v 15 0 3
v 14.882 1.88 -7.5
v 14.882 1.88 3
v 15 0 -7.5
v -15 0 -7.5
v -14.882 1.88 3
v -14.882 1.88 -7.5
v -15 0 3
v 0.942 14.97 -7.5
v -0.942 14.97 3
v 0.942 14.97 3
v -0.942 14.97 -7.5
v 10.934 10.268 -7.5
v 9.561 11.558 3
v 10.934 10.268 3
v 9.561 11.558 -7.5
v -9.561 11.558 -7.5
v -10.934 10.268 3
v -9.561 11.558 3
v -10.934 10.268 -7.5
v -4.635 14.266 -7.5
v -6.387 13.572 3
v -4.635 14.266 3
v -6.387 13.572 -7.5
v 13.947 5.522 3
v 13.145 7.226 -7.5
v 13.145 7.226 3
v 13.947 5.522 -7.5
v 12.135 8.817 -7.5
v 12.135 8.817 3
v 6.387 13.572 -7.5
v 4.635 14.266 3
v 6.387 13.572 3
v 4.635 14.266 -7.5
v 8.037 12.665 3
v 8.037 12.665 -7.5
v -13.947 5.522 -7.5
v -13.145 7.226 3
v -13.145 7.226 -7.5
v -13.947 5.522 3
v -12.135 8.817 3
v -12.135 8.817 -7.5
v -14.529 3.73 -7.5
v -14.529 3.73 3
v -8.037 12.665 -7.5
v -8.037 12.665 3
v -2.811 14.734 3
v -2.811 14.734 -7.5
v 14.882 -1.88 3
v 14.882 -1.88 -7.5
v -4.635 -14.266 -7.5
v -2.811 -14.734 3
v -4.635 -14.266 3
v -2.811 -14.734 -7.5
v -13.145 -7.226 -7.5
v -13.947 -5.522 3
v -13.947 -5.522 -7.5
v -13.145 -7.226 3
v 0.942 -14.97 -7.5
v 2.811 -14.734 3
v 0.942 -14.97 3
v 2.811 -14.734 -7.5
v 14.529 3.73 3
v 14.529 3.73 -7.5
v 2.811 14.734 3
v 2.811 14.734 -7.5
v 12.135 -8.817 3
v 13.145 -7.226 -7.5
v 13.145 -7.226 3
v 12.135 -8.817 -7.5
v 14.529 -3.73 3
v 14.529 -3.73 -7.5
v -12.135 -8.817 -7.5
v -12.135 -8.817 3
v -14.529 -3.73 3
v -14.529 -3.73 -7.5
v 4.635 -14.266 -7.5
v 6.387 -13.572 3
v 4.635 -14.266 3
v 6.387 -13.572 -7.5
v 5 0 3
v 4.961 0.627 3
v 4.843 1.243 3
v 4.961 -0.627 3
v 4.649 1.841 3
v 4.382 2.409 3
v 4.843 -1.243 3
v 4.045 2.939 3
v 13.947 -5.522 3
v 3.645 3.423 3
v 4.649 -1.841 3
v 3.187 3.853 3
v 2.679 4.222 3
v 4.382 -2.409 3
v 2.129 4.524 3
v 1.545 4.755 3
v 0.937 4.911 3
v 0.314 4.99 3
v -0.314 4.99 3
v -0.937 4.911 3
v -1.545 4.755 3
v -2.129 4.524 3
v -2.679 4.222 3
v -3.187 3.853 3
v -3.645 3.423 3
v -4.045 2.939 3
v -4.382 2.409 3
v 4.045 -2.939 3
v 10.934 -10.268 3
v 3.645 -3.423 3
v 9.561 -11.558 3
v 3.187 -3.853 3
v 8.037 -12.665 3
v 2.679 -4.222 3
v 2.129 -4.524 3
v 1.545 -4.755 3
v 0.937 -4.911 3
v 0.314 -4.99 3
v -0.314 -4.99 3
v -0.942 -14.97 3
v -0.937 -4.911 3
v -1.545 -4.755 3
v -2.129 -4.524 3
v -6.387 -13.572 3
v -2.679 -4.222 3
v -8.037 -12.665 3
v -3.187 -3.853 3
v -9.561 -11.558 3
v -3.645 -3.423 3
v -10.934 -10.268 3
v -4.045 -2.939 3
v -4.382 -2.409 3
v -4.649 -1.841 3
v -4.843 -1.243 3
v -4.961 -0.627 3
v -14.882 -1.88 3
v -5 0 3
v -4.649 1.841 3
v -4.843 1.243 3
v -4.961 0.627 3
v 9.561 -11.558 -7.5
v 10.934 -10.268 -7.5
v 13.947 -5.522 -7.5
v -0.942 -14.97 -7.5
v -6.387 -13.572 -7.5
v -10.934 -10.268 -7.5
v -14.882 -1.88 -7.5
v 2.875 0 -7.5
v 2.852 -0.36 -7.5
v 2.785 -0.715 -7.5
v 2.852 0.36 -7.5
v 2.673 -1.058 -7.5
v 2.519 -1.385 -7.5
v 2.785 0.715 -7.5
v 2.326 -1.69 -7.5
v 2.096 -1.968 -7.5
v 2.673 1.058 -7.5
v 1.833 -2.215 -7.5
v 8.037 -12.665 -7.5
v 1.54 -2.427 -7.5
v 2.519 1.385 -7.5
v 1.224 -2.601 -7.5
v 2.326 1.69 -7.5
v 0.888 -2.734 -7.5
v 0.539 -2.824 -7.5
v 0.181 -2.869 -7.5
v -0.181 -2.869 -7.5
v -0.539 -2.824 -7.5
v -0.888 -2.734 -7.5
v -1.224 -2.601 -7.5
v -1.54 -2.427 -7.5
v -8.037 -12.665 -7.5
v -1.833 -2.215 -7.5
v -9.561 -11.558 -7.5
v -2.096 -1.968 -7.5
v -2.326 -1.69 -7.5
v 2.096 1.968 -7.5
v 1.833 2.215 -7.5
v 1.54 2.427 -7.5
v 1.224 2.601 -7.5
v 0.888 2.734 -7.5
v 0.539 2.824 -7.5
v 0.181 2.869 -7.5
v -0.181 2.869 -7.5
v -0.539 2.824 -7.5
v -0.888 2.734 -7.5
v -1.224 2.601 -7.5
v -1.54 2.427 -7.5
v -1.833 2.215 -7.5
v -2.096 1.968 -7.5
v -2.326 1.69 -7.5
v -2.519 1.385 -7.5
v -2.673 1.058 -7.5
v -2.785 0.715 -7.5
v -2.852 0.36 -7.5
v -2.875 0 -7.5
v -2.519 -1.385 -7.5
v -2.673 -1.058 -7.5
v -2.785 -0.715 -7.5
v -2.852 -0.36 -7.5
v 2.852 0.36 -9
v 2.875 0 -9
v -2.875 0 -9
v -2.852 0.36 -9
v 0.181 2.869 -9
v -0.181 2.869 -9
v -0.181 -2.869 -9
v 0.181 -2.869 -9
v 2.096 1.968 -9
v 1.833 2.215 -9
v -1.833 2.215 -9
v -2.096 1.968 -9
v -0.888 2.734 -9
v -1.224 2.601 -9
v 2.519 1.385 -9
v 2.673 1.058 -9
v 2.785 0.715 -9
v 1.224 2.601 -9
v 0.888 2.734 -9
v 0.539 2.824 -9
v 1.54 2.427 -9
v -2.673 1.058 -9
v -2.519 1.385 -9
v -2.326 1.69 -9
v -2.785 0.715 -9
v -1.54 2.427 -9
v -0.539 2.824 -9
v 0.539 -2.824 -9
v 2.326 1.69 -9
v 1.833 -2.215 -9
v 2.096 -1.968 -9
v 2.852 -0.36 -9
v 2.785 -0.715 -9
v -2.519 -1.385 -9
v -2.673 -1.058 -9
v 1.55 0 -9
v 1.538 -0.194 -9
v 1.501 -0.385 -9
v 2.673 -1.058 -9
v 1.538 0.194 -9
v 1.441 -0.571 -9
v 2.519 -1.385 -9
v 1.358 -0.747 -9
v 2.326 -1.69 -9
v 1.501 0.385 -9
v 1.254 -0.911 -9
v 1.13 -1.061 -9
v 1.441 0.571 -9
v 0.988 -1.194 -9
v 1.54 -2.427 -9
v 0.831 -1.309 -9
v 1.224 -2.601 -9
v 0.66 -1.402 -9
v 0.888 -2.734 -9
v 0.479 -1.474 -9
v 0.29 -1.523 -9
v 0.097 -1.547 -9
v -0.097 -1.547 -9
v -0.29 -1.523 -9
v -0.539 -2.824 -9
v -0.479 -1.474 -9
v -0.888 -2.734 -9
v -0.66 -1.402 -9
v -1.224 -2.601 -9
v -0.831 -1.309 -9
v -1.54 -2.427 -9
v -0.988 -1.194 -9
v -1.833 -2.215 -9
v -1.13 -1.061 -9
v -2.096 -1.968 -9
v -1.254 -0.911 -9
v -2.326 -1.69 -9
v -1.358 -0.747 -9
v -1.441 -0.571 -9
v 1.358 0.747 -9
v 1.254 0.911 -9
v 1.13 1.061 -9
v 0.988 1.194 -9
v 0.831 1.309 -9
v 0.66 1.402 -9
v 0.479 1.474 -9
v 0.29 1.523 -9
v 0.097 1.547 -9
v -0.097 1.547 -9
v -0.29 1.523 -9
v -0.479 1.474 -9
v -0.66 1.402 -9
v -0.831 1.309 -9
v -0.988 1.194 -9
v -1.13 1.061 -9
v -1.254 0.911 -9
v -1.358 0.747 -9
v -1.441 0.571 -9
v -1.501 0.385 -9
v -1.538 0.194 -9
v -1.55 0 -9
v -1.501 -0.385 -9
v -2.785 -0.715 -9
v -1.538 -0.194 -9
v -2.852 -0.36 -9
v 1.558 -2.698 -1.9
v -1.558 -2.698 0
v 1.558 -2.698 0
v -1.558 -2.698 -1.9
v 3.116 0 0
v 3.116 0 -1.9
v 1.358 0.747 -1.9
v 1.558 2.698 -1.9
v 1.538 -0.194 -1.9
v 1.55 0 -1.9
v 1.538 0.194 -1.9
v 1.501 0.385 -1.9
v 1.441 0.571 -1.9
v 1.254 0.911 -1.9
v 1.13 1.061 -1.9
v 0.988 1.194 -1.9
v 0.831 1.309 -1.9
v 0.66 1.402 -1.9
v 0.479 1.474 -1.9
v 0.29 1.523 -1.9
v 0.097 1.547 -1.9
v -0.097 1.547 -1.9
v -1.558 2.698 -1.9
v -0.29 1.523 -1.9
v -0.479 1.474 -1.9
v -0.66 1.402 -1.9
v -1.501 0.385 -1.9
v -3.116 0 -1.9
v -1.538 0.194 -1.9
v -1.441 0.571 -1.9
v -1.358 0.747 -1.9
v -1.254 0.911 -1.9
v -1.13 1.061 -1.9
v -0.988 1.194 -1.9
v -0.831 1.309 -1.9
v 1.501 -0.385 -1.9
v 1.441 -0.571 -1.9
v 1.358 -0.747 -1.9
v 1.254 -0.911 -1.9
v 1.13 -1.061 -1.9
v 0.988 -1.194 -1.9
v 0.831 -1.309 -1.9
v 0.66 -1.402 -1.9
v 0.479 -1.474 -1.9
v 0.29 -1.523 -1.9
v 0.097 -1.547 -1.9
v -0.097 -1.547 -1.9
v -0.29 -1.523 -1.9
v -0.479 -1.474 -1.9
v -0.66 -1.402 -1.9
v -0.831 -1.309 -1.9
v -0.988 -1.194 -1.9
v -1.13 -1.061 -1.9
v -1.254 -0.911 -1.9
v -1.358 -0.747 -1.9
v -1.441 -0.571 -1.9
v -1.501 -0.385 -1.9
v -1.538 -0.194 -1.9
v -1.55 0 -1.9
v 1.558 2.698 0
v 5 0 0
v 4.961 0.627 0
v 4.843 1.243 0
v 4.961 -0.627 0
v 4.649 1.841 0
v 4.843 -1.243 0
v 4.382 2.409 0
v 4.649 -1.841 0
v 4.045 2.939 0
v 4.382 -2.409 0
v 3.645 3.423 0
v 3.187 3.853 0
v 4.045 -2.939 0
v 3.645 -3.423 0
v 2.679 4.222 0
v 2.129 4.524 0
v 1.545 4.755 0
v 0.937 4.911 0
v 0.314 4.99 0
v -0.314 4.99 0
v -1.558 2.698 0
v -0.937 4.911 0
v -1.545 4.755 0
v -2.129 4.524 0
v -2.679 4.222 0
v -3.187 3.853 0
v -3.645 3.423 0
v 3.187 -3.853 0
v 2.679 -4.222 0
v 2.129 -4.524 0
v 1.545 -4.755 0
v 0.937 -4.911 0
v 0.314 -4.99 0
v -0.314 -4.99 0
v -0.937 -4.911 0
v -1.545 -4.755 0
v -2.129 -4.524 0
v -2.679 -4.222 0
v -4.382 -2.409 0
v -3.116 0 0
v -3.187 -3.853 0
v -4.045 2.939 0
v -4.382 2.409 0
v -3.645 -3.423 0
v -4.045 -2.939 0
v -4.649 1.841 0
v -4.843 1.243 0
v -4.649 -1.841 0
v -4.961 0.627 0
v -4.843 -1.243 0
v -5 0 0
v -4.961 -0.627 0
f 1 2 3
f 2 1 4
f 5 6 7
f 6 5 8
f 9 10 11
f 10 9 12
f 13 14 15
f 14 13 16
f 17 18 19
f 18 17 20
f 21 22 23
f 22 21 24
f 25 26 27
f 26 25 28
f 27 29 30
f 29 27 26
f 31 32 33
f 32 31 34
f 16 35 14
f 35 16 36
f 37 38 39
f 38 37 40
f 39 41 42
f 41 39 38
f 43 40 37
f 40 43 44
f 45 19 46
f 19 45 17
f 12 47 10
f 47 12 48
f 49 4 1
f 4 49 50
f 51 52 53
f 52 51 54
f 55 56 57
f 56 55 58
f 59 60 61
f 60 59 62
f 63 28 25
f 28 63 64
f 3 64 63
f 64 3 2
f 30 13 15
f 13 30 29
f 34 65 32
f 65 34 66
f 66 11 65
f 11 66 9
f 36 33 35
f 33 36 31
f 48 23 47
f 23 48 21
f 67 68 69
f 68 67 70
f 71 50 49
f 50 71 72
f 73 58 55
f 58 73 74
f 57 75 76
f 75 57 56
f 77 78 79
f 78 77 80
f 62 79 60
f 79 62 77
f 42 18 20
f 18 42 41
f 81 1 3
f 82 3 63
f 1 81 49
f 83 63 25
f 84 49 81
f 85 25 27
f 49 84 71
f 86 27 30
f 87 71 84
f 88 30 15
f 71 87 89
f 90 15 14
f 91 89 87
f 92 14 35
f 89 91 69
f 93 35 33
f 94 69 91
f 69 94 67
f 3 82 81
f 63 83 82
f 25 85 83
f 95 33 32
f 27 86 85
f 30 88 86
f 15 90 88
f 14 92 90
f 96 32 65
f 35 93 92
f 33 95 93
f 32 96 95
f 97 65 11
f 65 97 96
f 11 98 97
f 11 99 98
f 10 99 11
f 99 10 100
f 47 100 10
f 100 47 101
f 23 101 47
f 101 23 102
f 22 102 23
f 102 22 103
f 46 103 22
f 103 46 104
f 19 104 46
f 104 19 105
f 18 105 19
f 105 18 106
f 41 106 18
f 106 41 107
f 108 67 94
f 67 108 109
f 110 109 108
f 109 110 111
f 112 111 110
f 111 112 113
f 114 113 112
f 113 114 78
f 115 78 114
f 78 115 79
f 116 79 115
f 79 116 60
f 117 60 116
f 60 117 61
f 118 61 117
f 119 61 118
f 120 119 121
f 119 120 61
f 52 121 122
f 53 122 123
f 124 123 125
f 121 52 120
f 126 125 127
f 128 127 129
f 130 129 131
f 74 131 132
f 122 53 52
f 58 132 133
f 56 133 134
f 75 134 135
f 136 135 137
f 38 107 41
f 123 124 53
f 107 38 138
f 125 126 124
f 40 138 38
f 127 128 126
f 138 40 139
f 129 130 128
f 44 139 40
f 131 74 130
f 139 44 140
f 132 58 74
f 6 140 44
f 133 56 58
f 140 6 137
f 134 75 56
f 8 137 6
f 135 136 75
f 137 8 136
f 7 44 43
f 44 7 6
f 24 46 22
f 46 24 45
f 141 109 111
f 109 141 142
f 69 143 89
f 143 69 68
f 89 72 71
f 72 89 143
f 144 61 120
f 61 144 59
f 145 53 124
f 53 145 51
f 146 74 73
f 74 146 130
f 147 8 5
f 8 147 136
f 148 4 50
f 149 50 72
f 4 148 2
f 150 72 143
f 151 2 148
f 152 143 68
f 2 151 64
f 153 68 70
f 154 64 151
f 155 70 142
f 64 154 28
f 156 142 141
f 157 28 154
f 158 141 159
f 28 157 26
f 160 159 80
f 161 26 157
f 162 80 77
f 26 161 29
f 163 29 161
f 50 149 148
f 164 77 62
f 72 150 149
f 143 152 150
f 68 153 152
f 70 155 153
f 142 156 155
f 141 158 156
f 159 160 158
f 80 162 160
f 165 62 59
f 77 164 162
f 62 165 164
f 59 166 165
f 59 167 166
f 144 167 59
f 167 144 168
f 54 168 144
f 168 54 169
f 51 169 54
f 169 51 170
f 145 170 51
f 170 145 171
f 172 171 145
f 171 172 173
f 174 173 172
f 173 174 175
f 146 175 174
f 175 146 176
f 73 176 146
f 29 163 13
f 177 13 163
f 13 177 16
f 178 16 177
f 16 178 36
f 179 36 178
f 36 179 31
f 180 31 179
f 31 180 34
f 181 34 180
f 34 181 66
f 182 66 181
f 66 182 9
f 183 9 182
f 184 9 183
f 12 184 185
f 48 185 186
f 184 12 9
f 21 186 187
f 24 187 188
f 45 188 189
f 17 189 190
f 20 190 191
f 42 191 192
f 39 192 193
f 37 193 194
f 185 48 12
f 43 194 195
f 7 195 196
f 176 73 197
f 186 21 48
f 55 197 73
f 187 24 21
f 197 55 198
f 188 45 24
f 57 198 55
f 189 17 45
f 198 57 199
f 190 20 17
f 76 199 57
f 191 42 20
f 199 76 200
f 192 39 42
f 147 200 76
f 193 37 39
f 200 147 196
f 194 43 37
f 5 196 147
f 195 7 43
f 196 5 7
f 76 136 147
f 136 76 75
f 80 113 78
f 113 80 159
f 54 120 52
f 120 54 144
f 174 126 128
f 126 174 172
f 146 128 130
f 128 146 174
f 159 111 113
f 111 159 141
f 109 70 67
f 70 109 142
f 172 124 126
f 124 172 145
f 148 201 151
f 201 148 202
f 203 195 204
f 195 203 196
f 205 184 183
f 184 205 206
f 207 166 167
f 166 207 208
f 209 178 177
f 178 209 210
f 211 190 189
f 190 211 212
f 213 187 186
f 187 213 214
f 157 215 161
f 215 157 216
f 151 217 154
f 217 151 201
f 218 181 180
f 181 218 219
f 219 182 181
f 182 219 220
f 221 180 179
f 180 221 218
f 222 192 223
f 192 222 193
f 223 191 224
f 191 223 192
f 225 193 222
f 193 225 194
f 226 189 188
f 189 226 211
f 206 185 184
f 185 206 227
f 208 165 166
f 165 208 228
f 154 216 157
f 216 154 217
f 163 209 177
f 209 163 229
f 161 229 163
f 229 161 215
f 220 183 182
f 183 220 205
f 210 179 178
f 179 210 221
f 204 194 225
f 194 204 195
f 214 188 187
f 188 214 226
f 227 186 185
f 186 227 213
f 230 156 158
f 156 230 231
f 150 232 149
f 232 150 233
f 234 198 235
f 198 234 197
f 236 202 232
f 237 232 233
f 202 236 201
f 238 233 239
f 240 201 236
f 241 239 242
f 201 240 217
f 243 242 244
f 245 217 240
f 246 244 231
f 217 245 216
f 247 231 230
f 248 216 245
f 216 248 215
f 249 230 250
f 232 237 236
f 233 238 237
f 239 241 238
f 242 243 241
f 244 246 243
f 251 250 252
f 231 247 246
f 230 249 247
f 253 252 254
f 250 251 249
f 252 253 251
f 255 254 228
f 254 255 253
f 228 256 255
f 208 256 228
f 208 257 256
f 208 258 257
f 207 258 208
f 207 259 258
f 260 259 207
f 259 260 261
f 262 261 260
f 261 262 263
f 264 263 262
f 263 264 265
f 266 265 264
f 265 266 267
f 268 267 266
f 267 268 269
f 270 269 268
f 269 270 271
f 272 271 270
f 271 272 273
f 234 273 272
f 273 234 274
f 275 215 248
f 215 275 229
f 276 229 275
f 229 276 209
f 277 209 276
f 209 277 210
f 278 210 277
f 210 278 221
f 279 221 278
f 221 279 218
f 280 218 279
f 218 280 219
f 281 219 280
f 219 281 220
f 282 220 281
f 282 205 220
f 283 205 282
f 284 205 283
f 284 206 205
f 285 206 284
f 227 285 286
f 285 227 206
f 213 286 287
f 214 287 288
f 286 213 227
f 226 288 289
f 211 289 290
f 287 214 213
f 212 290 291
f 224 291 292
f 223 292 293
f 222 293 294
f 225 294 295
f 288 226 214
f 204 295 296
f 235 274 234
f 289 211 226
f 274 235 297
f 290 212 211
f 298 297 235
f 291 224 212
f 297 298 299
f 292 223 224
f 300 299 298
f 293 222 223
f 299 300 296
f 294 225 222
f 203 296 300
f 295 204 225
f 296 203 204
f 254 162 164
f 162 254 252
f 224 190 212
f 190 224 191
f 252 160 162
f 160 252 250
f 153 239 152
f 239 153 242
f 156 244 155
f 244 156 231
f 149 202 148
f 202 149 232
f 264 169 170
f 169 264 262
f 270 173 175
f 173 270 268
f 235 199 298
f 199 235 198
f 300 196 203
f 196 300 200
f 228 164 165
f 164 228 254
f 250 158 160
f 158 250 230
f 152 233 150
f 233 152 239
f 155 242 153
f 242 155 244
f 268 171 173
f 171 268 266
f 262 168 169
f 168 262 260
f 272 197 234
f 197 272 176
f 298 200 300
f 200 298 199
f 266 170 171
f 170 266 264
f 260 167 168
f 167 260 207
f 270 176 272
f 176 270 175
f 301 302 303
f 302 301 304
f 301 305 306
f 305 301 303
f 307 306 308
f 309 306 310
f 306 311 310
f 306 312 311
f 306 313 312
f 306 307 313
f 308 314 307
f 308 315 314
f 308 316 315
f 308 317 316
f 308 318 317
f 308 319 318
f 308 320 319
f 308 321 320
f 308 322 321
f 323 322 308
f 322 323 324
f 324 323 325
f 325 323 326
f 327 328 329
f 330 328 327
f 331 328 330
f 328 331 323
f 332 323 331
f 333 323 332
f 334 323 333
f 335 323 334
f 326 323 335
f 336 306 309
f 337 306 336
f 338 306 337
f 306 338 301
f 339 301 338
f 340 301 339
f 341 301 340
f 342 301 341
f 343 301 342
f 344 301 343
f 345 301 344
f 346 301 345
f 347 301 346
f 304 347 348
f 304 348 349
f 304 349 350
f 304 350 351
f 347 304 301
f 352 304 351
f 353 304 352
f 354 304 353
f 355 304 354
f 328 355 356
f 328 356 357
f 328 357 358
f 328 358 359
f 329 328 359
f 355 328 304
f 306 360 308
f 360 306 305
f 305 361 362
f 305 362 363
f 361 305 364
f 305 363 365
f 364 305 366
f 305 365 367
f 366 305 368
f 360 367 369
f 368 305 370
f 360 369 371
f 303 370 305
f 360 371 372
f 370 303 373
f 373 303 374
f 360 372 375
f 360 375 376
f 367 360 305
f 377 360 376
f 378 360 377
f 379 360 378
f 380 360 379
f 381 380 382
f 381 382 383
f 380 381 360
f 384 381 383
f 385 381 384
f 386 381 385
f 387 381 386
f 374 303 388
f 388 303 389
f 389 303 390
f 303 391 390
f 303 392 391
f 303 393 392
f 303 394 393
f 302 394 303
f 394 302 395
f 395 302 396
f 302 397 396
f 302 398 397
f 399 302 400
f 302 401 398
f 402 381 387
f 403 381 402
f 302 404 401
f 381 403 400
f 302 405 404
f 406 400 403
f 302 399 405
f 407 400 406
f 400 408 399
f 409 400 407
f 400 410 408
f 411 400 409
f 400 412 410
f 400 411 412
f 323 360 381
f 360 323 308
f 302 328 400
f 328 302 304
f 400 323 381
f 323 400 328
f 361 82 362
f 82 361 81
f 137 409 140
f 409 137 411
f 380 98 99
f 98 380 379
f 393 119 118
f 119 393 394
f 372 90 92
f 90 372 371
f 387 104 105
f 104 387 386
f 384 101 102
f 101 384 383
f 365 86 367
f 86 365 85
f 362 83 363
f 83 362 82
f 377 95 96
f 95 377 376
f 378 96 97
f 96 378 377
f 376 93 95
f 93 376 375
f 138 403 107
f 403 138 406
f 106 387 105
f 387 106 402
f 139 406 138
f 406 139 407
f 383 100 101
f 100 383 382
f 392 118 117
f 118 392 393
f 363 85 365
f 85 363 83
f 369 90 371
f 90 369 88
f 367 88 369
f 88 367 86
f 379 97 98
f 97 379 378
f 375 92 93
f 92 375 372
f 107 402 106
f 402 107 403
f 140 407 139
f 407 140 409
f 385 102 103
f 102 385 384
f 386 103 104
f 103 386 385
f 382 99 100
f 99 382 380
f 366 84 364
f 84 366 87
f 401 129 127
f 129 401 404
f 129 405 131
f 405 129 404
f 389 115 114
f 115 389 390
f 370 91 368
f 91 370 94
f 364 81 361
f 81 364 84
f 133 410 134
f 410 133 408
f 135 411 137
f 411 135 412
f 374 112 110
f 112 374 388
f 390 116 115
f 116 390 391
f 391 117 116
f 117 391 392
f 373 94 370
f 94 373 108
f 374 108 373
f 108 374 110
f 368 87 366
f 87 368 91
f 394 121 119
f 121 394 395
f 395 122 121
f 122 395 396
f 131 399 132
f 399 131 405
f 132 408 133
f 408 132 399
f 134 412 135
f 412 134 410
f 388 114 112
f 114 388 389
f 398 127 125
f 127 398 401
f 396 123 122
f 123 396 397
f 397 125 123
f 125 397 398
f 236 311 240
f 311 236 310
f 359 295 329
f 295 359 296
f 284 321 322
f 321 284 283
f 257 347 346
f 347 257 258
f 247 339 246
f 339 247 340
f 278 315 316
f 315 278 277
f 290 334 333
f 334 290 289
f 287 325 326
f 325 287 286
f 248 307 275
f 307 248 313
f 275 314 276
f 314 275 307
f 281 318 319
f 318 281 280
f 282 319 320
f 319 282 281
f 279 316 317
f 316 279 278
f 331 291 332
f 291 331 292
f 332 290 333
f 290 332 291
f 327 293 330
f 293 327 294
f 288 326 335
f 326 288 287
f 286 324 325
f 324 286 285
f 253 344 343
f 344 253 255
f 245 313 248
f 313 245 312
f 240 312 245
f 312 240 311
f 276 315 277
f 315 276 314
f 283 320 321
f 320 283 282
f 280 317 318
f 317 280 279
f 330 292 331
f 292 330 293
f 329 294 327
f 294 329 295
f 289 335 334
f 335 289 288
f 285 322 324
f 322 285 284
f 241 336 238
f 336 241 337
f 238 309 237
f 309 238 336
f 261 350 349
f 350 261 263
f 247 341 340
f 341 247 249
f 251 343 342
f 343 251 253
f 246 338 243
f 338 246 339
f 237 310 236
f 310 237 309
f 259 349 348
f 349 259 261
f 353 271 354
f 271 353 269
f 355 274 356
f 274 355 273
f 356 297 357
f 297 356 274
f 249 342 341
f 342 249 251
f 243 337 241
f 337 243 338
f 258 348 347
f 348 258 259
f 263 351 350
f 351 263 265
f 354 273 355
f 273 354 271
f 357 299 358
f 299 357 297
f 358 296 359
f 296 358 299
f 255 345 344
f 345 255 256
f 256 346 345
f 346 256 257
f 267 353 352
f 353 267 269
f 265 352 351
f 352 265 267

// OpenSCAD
$fn = 50;


difference() {
	union() {
		translate(v = [0, 0, -7.5000000000]) {
			cylinder(h = 10.5000000000, r = 15.0000000000);
		}
		#translate(v = [0, 0, -9.0000000000]) {
			cylinder(h = 9, r = 2.8750000000);
		}
	}
	union() {
		translate(v = [0, 0, 0]) {
			rotate(a = [0, 0, 0]) {
				difference() {
					union() {
						translate(v = [0, 0, -1.9000000000]) {
							linear_extrude(height = 1.9000000000) {
								polygon(points = [[3.1158000000, 0.0000000000], [1.5579000000, 2.6983619531], [-1.5579000000, 2.6983619531], [-3.1158000000, 0.0000000000], [-1.5579000000, -2.6983619531], [1.5579000000, -2.6983619531]]);
							}
						}
					}
					union();
				}
			}
		}
		#cylinder(h = 3, r = 5.0000000000);
		#translate(v = [0, 0, -100.0000000000]) {
			cylinder(h = 200, r = 1.5500000000);
		}
	}
}
